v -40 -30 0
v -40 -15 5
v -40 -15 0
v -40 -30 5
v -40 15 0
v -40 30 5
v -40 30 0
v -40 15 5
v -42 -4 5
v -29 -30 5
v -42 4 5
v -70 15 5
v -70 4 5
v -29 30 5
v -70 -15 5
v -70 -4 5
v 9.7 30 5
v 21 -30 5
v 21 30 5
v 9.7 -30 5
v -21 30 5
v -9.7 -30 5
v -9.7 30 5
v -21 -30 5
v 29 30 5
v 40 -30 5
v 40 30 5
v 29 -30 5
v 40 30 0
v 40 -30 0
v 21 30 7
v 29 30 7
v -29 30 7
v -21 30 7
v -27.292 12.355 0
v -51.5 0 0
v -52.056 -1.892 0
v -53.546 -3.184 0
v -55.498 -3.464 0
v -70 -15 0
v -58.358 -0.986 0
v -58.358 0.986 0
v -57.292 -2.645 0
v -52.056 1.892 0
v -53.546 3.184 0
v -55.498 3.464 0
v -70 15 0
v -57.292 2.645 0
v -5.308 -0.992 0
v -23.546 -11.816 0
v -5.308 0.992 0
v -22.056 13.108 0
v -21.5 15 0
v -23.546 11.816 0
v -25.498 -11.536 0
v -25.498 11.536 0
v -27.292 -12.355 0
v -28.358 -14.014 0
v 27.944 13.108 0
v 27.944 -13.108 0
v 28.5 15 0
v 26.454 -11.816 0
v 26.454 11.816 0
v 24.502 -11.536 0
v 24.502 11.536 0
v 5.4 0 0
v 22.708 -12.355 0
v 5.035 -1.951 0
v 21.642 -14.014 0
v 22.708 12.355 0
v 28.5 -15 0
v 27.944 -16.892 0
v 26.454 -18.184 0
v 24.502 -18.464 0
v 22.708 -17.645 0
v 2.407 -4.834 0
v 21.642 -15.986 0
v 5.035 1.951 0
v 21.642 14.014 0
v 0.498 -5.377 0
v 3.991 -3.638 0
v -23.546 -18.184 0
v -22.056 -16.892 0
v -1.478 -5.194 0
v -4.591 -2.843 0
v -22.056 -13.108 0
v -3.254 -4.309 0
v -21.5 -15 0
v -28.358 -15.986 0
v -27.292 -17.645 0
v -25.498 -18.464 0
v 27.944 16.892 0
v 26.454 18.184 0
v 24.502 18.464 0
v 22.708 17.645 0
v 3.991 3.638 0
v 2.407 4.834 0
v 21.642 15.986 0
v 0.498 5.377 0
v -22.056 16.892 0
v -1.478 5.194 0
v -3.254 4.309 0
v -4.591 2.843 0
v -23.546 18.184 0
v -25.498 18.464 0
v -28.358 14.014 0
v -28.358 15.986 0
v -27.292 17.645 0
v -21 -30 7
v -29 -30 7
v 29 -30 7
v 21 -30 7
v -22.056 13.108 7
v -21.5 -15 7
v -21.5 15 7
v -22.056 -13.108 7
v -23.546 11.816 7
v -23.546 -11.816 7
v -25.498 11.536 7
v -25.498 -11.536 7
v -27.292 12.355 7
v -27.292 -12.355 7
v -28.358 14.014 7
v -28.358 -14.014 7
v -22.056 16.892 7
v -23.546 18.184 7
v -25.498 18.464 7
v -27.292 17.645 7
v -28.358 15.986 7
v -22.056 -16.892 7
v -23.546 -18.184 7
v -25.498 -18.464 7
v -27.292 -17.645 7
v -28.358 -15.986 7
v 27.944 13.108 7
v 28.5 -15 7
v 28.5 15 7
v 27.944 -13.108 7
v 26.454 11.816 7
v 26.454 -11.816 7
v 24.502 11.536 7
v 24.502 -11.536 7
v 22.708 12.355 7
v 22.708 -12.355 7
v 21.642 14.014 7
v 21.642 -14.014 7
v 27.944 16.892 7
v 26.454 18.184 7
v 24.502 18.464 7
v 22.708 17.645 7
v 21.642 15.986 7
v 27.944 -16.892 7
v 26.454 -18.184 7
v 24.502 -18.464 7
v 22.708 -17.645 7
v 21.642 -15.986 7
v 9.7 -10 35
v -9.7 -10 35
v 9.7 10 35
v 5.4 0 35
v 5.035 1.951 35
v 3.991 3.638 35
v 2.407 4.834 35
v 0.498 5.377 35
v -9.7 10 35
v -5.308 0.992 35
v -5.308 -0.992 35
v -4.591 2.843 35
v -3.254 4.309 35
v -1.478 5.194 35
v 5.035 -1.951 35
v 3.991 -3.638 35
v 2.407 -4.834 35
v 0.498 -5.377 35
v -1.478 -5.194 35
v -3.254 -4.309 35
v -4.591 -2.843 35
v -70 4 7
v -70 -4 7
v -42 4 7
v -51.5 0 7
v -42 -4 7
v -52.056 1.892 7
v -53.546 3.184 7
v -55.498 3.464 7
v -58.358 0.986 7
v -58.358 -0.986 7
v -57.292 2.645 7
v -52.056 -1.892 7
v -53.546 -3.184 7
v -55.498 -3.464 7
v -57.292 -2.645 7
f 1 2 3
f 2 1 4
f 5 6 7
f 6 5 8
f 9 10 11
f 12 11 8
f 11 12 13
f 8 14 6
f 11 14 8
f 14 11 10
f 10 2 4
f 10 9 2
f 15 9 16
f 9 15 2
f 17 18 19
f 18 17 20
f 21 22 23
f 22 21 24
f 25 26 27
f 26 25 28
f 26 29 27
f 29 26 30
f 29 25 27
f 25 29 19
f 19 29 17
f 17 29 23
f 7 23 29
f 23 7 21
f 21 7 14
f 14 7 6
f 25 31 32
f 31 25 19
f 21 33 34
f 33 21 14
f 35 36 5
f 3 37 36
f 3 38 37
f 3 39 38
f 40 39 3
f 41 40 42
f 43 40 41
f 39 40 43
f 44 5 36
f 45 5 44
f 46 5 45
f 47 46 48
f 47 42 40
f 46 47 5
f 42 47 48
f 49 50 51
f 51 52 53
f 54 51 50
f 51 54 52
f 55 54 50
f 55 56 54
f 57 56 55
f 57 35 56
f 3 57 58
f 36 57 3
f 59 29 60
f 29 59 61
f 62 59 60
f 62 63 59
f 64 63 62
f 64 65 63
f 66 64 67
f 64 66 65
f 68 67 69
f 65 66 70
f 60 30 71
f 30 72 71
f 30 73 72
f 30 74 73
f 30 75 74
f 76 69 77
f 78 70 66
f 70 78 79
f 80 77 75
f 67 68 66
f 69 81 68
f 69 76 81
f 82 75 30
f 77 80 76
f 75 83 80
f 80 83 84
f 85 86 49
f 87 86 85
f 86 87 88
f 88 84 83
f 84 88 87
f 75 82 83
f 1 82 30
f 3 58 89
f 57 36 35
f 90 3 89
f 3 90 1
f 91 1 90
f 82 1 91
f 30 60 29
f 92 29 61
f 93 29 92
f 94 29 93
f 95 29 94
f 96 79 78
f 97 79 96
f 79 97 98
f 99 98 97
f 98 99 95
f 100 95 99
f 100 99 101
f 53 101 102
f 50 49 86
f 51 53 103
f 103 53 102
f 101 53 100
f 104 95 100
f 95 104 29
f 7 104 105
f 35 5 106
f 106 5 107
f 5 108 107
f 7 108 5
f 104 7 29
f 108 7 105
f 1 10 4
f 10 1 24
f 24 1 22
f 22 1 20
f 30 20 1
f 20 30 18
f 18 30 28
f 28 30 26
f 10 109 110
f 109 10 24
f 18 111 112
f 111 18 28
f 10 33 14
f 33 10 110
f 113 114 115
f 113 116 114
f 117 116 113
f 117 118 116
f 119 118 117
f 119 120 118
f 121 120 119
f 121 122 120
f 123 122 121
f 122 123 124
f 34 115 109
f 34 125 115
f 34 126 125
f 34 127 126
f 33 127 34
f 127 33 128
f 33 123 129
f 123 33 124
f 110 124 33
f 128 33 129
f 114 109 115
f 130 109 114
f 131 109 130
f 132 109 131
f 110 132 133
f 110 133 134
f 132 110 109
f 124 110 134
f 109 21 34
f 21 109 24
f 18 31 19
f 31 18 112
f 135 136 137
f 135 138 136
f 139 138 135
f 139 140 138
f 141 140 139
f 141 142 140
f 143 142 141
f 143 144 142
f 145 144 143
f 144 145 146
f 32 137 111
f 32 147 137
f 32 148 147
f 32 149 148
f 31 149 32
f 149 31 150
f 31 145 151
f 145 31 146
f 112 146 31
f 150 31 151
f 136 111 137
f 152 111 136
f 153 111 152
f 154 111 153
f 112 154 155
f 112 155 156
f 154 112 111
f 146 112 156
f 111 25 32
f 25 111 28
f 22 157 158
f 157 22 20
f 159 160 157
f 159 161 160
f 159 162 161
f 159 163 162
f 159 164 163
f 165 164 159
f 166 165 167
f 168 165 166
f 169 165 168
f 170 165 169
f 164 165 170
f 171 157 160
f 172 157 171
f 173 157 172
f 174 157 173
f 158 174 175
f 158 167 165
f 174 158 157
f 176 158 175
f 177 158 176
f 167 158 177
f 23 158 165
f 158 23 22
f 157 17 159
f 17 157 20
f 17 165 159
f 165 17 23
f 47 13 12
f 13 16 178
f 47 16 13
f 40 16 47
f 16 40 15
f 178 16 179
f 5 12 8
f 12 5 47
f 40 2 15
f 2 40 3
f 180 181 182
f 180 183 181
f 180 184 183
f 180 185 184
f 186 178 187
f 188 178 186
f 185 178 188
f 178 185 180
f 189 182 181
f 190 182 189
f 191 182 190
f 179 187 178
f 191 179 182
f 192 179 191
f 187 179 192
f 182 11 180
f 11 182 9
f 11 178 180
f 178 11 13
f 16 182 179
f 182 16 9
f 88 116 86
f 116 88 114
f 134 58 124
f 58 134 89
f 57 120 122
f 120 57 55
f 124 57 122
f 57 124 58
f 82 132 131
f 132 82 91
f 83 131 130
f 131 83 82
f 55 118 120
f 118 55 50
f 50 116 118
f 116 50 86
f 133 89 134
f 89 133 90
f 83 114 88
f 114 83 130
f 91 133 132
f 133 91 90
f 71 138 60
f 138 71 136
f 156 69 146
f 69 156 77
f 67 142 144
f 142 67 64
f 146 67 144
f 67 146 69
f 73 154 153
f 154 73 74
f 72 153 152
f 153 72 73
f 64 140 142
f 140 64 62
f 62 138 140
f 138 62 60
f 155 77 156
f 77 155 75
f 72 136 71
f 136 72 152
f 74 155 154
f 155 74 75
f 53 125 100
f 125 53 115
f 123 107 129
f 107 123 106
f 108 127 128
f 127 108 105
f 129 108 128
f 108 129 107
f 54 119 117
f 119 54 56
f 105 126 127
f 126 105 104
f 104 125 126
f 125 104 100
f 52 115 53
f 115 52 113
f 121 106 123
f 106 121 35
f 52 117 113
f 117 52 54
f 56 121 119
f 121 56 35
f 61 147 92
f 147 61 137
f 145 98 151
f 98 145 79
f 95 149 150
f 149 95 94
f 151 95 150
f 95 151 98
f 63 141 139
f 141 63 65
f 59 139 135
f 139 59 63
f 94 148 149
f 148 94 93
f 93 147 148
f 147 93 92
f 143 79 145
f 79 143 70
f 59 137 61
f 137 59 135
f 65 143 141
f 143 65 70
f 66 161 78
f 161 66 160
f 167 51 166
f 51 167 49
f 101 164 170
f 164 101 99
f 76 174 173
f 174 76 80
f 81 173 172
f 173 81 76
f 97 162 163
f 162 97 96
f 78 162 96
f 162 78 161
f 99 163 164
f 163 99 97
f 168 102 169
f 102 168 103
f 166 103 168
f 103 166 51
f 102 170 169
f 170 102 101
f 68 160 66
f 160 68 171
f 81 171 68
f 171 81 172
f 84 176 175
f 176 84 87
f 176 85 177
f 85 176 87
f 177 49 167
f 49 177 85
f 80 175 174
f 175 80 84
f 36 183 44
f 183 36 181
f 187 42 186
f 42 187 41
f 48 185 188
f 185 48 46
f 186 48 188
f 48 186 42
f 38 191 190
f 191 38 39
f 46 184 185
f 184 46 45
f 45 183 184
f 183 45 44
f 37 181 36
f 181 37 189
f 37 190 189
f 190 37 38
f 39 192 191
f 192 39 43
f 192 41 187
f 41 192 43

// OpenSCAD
sirka_ramene2 = 40;
sirka_ramene1 = 50;
delka_uchytu = 80;
m6_dira = 7;
m5_dira = 6;
drazka = 8;
m10_dira = 10.8;
delka_ramene = 30;
tloustka_hlavy = 8;
hlava_d1 = 15;
hlava_d2 = 20;
vyska_tela = 80;
delka_uchytu_napravy = 60;
vrstva = 0.3;
profil_rezerva = 0.2;


module uchyt_rameno(){
    difference(){
       union(){
          hull(){ 
            translate([0,-delka_uchytu/2,0])
                cube([5,delka_uchytu,35]);
            translate([5+30,-sirka_ramene1/2,0])
                cube([5,sirka_ramene1,35]); 
          }
          hull(){
                translate([5+30,-sirka_ramene1/2,0])
                    cube([5,sirka_ramene1,35]); 
                translate([30+delka_ramene,sirka_ramene2/2-hlava_d2/2,0])
                    cylinder(d=hlava_d2,h=tloustka_hlavy);
                translate([30+delka_ramene,-sirka_ramene2/2+hlava_d2/2,0])
                    cylinder(d=hlava_d2,h=tloustka_hlavy);              
          }  
        }
        difference(){
            translate([5,-delka_uchytu/2-1,5])
                cube([30+profil_rezerva,delka_uchytu+2,30+1]);
            translate([5+15+profil_rezerva/2-drazka/2,-delka_uchytu/2-1,5])
                cube([drazka,delka_uchytu+1,2]);            
        }
        
        translate([5+15+profil_rezerva/2,15,0])
            cylinder(d=m6_dira,h=20,center = true);
        translate([5+15+profil_rezerva/2,-15,0])
            cylinder(d=m6_dira,h=20,center = true);

        translate([5+30,15,5+15])
            rotate([0,90,0])
                cylinder(d=m6_dira,h=20,center = true);
        translate([5+30,-15,5+15])
            rotate([0,90,0])
                cylinder(d=m6_dira,h=20,center = true);
 
        
        translate([5+30+5,2,tloustka_hlavy])
            cube([delka_ramene,delka_uchytu/2,30+1]);
        translate([5+30+5,-2-delka_uchytu/2,tloustka_hlavy])
            cube([delka_ramene,delka_uchytu/2,30+1]);
        
                        translate([30+delka_ramene,sirka_ramene2/2-hlava_d2/2,3])
                    cylinder(d=hlava_d1,h=tloustka_hlavy);
                translate([30+delka_ramene,-sirka_ramene2/2+hlava_d2/2,3])
                    cylinder(d=hlava_d1,h=tloustka_hlavy);
           
                        translate([30+delka_ramene,sirka_ramene2/2-hlava_d2/2,-1])
                    cylinder(d=m5_dira,h=tloustka_hlavy+2);
                translate([30+delka_ramene,-sirka_ramene2/2+hlava_d2/2,-1])
                    cylinder(d=m5_dira,h=tloustka_hlavy+2);

    }
}

module kloub_napravy(){
    difference(){
        union(){ 
            translate([-10,-delka_uchytu/2,0])
                cube([30,delka_uchytu,35]);
            cylinder(d=40,h=35);
            translate([15.5,0,0])
                uchyt_rameno();
        }
        translate([0,30,15+5])
            rotate([0,90,0])    
                cylinder(d=m6_dira,h=50,center = true);
        translate([0,-30,15+5])
            rotate([0,90,0])    
                cylinder(d=m6_dira,h=50,center = true);    
        translate([0,0,-1])
            cylinder(d=30-6,h=37);
        translate([0,0,-1])
            cylinder(d=30+1,h=11);
        translate([0,0,35-10])
            cylinder(d=30+1,h=11);    
    }
    //mustek pro snazsi tisk
  //  translate([0,0,10])
  //      cylinder(d=30-6,h=vrstva);
} 

//uchyt_rameno();
//kloub_napravy();

module uchyt_napravy(){
    difference(){
        union(){
            translate([-vyska_tela/2,-delka_uchytu_napravy/2,0]) //horizontalni cast
                cube([vyska_tela,delka_uchytu_napravy,5]);
            translate([-(vyska_tela/2 - 30/2 + drazka/2),-delka_uchytu_napravy/2,0])
                cube([drazka,delka_uchytu_napravy,7]);
            translate([+(vyska_tela/2 - 30/2 - drazka/2),-delka_uchytu_napravy/2,0])
                cube([drazka,delka_uchytu_napravy,7]);
            
            hull(){
                translate([-(vyska_tela-60-0.6)/2,-delka_uchytu_napravy/2,0])
                    cube([vyska_tela-60-0.6,delka_uchytu_napravy,5]);
                translate([-(vyska_tela-60-0.6)/2,-(vyska_tela-60)/2,0])
                    cube([vyska_tela-60-0.6,vyska_tela-60,30+5]);
            }
            
            translate([-(vyska_tela/2+30),-30/2,0])   // vertikalni cast
                cube([(vyska_tela+30),30,5]);            
            translate([-(vyska_tela/2+30),-drazka/2,0])
                cube([(30-2),drazka,7]);                                 
        }    
        translate([0,0,-1])
            cylinder(d = m10_dira,h=30+5+2);
        for(y=[-15:30:15])
            for(x=[-(vyska_tela/2-15):vyska_tela-30:vyska_tela/2-15])
                translate([x,y,-1])
                    cylinder(d=m6_dira,h=10);
        translate([-(vyska_tela/2+15),0,-1])
                cylinder(d=m6_dira,h=10);
    }    
}

uchyt_napravy();
